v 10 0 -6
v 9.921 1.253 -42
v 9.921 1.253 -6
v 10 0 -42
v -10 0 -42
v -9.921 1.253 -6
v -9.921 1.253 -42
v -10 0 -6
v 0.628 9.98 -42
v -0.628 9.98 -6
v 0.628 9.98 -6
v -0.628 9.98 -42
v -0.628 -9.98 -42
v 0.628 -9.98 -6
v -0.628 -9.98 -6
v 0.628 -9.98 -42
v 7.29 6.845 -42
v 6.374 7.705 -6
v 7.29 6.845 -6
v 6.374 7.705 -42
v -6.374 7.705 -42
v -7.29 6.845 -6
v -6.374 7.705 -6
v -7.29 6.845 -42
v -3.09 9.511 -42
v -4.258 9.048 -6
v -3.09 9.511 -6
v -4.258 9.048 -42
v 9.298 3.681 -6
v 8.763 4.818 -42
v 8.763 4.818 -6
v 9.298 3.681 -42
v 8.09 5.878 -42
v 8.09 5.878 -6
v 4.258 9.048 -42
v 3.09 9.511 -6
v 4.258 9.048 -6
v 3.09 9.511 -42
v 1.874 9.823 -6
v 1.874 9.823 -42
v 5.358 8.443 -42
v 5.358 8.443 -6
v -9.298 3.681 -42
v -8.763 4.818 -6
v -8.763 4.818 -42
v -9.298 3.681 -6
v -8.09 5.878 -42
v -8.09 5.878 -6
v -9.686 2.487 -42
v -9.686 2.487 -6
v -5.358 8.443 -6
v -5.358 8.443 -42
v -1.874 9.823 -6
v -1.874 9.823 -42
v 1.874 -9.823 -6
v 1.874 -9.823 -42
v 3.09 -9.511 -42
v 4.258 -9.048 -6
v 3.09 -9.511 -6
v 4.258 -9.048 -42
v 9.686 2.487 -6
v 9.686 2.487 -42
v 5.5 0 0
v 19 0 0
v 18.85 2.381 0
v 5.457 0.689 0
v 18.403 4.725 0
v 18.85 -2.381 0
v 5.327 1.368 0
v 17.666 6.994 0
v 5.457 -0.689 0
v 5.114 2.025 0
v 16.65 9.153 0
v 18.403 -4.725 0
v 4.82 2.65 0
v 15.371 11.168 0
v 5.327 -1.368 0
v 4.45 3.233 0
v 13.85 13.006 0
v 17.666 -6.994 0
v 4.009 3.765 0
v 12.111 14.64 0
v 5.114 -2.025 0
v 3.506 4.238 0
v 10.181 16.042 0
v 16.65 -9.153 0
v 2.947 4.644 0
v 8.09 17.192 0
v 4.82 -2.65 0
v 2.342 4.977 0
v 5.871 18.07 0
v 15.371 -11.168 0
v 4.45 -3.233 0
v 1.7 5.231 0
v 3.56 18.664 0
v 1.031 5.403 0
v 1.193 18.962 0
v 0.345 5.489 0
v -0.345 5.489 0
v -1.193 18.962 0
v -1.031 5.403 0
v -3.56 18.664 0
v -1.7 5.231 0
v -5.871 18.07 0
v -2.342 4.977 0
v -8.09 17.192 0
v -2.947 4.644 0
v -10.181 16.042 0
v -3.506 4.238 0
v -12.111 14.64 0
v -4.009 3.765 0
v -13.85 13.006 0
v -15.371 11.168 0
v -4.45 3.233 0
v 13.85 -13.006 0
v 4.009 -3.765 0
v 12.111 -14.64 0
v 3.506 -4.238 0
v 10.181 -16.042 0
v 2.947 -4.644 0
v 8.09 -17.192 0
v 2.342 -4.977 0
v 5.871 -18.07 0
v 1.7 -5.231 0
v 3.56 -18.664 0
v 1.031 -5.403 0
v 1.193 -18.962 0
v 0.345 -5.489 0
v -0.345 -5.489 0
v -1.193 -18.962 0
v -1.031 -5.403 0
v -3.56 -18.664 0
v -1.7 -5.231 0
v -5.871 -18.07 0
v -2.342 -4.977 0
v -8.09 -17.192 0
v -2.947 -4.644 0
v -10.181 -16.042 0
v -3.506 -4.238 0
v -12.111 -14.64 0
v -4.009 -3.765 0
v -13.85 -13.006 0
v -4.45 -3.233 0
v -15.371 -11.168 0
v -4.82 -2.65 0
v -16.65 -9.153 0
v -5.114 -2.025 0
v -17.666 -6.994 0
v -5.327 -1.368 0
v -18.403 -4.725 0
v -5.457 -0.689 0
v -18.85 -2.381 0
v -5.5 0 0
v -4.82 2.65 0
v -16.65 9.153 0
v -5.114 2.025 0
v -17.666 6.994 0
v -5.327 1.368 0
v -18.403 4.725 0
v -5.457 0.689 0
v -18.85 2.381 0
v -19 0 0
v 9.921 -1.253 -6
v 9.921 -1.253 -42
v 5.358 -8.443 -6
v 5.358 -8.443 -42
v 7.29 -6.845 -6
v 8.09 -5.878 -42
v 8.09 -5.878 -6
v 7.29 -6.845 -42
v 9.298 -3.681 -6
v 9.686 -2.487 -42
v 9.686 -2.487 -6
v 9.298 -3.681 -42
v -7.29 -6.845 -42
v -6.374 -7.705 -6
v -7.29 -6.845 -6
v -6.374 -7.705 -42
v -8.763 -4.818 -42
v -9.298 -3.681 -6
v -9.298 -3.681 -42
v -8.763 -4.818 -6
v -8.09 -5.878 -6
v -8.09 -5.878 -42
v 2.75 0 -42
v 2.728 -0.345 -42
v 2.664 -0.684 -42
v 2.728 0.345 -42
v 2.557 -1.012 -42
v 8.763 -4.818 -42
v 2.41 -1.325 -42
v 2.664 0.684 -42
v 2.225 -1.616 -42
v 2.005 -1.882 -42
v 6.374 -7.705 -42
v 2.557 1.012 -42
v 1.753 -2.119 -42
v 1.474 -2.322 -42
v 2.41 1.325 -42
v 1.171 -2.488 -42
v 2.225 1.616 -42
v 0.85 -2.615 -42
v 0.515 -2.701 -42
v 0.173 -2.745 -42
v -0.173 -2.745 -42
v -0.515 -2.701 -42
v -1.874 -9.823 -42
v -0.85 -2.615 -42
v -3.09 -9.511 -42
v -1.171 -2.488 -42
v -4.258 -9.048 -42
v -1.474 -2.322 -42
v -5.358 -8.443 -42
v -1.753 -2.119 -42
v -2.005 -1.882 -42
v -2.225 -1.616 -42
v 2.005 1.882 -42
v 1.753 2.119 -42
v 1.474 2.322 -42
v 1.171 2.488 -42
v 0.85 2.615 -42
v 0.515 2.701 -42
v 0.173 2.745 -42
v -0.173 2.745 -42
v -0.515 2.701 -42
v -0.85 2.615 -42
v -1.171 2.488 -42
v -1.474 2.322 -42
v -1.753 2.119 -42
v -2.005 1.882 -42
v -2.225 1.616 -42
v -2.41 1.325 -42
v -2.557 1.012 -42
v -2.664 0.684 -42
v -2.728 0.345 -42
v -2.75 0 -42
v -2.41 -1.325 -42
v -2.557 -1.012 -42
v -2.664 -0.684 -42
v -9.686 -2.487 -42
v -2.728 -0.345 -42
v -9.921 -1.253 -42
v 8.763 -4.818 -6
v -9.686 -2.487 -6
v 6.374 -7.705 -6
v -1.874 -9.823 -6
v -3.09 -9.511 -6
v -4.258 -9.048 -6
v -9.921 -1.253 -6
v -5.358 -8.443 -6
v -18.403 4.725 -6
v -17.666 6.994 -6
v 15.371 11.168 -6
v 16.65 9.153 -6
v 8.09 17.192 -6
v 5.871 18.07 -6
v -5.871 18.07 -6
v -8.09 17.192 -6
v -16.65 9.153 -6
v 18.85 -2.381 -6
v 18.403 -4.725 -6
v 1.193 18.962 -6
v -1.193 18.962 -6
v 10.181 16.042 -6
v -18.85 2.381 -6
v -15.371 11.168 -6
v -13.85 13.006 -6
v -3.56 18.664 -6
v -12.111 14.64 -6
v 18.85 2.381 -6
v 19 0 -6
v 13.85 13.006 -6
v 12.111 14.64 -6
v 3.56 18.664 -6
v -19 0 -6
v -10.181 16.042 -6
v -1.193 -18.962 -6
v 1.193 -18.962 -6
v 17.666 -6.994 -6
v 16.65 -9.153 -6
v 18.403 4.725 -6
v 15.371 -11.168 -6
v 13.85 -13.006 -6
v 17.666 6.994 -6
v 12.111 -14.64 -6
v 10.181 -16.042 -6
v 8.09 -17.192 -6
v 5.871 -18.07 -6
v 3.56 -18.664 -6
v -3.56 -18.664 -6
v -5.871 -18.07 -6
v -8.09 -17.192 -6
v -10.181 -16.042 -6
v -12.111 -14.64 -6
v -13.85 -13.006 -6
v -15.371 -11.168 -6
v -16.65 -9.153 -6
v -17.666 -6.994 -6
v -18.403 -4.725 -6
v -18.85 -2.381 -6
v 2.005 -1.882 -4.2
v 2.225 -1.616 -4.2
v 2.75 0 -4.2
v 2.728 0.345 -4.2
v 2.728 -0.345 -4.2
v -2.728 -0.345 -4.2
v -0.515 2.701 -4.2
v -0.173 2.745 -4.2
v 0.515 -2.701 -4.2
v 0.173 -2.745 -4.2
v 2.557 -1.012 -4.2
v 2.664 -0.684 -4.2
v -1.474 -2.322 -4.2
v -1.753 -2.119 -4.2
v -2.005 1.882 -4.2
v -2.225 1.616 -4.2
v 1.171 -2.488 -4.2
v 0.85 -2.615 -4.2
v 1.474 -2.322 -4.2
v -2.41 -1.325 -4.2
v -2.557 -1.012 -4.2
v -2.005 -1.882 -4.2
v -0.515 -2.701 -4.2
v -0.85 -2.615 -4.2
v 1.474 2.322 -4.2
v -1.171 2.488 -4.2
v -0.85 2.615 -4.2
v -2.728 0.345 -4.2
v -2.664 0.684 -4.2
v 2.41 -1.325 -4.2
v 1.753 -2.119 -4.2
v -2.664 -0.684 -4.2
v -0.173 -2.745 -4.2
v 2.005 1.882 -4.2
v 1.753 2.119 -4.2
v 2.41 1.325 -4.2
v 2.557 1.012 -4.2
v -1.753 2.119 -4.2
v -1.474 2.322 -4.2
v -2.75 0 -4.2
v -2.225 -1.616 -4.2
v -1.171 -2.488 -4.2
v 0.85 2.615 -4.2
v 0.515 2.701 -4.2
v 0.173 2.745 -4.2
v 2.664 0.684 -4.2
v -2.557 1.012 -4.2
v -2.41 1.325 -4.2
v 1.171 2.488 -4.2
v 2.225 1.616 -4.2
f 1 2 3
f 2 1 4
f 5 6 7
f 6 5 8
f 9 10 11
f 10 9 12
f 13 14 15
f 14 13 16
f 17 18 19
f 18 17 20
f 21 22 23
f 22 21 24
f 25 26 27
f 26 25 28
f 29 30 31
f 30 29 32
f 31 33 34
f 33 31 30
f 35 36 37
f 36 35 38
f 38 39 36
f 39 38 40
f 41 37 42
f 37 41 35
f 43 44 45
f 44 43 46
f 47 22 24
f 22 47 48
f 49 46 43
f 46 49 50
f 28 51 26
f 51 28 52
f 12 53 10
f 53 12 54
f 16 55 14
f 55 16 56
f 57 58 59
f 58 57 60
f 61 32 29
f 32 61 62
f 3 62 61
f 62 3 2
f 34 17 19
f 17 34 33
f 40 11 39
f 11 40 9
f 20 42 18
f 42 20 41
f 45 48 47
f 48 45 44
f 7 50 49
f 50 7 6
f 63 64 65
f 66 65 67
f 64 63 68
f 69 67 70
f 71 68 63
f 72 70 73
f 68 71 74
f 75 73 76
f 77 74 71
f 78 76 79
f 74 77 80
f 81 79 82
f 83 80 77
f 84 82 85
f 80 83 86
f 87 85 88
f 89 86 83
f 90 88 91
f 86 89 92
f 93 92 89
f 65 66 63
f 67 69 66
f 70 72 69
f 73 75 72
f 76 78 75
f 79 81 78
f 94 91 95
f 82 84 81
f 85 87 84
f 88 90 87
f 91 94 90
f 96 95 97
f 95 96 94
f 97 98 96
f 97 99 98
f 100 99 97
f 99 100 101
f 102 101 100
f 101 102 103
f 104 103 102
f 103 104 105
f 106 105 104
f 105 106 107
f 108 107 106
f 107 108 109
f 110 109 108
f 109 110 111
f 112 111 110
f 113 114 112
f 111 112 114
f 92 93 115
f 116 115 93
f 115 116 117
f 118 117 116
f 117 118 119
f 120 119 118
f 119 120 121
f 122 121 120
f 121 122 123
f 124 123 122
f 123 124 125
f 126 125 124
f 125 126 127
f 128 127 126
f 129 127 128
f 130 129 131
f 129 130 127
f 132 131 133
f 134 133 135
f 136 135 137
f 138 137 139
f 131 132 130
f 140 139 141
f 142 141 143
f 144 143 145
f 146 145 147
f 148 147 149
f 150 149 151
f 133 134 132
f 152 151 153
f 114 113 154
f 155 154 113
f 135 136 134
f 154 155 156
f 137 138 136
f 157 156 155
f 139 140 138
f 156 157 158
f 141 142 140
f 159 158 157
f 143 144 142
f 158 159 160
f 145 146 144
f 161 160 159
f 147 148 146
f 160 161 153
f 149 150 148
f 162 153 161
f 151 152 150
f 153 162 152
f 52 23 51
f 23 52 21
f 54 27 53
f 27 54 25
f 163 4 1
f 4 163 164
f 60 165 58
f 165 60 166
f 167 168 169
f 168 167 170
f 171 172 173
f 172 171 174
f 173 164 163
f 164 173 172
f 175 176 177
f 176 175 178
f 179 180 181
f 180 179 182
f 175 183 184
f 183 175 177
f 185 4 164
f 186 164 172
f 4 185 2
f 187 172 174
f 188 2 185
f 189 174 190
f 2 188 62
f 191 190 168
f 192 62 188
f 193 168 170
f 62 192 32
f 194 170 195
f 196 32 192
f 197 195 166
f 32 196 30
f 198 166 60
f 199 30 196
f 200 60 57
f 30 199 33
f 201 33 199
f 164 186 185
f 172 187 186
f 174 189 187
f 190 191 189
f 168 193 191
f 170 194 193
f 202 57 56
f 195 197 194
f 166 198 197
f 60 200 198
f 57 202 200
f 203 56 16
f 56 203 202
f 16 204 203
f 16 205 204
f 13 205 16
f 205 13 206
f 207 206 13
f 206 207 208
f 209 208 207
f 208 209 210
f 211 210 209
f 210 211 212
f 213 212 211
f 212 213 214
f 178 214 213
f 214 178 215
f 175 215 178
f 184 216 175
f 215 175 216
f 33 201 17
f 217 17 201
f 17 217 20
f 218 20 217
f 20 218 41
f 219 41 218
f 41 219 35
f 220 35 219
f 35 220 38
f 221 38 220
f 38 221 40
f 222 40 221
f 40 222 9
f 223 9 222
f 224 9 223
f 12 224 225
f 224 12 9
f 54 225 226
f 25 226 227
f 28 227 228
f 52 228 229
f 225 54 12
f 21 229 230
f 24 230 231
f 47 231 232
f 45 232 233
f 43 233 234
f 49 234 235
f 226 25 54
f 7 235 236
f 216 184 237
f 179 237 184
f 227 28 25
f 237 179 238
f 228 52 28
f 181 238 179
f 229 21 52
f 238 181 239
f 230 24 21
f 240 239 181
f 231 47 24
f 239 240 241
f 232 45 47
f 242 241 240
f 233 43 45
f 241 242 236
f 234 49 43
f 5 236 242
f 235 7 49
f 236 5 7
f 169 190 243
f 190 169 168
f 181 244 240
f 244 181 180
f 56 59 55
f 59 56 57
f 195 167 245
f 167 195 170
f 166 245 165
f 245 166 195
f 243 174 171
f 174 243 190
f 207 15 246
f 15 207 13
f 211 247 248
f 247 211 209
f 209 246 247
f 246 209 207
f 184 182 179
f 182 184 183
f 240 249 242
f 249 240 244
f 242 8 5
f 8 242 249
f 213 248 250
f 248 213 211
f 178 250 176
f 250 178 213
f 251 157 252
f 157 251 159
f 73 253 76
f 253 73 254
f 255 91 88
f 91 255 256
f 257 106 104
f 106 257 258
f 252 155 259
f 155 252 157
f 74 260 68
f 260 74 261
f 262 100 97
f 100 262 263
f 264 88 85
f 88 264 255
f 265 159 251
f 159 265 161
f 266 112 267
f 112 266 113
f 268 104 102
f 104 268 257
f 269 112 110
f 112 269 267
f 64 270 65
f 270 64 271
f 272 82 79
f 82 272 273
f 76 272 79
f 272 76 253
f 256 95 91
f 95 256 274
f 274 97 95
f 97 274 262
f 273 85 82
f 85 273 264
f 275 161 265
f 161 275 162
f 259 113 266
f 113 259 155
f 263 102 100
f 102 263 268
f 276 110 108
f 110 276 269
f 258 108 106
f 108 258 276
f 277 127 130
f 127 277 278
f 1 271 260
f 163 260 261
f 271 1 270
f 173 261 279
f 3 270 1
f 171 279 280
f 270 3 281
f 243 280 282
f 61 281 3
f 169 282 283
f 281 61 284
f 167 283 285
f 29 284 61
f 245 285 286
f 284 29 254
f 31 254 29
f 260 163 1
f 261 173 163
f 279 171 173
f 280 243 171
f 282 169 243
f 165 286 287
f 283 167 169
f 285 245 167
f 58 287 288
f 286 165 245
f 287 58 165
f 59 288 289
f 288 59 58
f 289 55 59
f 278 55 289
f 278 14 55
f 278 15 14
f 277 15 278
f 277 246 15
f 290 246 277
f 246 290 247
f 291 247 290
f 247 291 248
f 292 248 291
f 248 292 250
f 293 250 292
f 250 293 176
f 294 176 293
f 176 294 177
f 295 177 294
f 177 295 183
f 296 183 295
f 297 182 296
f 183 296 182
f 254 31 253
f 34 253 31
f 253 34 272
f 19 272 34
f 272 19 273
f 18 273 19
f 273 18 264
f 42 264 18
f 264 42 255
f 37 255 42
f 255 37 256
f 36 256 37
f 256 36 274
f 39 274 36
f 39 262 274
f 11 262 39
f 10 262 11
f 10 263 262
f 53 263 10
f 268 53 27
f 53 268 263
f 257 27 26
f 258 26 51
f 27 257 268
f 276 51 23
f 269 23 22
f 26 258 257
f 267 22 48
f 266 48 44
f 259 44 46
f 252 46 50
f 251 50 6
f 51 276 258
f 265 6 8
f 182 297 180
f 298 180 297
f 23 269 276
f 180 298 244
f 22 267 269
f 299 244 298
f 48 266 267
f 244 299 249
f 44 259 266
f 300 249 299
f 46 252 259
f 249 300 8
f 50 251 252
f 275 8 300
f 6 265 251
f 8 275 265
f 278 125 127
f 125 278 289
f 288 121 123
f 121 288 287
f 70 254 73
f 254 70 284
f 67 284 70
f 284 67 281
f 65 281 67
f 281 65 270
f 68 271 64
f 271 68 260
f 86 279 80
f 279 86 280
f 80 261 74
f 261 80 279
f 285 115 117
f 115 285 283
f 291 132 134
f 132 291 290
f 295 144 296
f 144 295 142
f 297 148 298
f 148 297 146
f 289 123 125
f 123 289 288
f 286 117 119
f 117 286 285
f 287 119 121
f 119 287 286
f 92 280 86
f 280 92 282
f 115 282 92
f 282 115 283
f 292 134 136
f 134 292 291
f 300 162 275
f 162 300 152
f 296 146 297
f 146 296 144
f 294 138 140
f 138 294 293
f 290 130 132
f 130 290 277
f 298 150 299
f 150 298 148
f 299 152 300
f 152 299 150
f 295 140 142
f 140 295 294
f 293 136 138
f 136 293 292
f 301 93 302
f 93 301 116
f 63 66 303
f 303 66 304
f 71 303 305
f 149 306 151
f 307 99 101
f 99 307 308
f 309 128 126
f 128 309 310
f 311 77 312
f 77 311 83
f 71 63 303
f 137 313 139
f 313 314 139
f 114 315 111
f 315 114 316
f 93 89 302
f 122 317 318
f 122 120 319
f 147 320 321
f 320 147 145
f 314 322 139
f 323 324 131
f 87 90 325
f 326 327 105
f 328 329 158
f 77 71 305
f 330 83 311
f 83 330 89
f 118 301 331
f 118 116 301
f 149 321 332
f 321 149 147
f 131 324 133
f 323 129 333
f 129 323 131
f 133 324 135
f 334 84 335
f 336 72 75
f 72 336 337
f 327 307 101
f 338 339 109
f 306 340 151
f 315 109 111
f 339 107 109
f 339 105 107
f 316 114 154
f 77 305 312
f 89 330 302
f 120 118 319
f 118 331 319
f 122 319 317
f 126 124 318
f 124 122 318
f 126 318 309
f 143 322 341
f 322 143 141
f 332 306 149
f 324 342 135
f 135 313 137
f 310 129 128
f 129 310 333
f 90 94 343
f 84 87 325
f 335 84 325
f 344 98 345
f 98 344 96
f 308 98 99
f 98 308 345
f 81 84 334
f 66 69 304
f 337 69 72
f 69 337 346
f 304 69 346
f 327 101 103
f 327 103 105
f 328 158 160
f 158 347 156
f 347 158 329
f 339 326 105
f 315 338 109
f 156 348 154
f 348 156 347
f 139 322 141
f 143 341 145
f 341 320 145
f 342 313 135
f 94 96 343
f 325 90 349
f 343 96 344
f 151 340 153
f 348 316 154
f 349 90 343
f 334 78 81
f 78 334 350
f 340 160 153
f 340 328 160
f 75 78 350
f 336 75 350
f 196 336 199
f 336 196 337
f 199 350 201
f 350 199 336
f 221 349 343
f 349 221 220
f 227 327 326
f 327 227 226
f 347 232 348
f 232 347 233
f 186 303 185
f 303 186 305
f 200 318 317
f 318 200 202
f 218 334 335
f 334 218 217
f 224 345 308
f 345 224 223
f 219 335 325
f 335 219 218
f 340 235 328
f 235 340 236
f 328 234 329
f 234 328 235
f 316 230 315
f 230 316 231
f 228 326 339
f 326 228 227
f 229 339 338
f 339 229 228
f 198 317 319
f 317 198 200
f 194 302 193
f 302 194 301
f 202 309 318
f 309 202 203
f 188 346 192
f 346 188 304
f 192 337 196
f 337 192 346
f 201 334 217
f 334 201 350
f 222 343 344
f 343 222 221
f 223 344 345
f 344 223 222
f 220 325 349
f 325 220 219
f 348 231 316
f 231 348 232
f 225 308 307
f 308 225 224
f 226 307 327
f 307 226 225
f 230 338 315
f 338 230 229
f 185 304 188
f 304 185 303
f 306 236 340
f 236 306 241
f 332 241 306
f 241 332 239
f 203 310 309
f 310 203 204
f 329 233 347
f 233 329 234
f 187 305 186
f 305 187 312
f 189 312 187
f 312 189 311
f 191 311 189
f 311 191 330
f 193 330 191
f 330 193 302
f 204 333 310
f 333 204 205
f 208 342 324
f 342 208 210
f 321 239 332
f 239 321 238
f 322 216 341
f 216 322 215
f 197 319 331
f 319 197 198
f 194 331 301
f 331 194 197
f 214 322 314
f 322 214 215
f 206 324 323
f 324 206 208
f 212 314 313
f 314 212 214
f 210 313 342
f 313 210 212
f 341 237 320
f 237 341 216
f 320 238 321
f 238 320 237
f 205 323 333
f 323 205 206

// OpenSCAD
$fn = 50;


difference() {
	union() {
		translate(v = [0, 0, -42.0000000000]) {
			cylinder(h = 42, r = 10.0000000000);
		}
		translate(v = [0, 0, -6.0000000000]) {
			cylinder(h = 6, r = 19.0000000000);
		}
	}
	union() {
		translate(v = [0, 0, 0]) {
			rotate(a = [0, 0, 0]) {
				difference() {
					union() {
						#translate(v = [0, 0, -42.0000000000]) {
							cylinder(h = 42, r = 2.2500000000);
						}
						#translate(v = [0, 0, -4.2000000000]) {
							cylinder(h = 4.2000000000, r1 = 2.7500000000, r2 = 5.5000000000);
						}
						#translate(v = [0, 0, -42.0000000000]) {
							cylinder(h = 42, r = 2.7500000000);
						}
						#translate(v = [0, 0, -42.0000000000]) {
							cylinder(h = 42, r = 2.2500000000);
						}
					}
					union();
				}
			}
		}
	}
}
